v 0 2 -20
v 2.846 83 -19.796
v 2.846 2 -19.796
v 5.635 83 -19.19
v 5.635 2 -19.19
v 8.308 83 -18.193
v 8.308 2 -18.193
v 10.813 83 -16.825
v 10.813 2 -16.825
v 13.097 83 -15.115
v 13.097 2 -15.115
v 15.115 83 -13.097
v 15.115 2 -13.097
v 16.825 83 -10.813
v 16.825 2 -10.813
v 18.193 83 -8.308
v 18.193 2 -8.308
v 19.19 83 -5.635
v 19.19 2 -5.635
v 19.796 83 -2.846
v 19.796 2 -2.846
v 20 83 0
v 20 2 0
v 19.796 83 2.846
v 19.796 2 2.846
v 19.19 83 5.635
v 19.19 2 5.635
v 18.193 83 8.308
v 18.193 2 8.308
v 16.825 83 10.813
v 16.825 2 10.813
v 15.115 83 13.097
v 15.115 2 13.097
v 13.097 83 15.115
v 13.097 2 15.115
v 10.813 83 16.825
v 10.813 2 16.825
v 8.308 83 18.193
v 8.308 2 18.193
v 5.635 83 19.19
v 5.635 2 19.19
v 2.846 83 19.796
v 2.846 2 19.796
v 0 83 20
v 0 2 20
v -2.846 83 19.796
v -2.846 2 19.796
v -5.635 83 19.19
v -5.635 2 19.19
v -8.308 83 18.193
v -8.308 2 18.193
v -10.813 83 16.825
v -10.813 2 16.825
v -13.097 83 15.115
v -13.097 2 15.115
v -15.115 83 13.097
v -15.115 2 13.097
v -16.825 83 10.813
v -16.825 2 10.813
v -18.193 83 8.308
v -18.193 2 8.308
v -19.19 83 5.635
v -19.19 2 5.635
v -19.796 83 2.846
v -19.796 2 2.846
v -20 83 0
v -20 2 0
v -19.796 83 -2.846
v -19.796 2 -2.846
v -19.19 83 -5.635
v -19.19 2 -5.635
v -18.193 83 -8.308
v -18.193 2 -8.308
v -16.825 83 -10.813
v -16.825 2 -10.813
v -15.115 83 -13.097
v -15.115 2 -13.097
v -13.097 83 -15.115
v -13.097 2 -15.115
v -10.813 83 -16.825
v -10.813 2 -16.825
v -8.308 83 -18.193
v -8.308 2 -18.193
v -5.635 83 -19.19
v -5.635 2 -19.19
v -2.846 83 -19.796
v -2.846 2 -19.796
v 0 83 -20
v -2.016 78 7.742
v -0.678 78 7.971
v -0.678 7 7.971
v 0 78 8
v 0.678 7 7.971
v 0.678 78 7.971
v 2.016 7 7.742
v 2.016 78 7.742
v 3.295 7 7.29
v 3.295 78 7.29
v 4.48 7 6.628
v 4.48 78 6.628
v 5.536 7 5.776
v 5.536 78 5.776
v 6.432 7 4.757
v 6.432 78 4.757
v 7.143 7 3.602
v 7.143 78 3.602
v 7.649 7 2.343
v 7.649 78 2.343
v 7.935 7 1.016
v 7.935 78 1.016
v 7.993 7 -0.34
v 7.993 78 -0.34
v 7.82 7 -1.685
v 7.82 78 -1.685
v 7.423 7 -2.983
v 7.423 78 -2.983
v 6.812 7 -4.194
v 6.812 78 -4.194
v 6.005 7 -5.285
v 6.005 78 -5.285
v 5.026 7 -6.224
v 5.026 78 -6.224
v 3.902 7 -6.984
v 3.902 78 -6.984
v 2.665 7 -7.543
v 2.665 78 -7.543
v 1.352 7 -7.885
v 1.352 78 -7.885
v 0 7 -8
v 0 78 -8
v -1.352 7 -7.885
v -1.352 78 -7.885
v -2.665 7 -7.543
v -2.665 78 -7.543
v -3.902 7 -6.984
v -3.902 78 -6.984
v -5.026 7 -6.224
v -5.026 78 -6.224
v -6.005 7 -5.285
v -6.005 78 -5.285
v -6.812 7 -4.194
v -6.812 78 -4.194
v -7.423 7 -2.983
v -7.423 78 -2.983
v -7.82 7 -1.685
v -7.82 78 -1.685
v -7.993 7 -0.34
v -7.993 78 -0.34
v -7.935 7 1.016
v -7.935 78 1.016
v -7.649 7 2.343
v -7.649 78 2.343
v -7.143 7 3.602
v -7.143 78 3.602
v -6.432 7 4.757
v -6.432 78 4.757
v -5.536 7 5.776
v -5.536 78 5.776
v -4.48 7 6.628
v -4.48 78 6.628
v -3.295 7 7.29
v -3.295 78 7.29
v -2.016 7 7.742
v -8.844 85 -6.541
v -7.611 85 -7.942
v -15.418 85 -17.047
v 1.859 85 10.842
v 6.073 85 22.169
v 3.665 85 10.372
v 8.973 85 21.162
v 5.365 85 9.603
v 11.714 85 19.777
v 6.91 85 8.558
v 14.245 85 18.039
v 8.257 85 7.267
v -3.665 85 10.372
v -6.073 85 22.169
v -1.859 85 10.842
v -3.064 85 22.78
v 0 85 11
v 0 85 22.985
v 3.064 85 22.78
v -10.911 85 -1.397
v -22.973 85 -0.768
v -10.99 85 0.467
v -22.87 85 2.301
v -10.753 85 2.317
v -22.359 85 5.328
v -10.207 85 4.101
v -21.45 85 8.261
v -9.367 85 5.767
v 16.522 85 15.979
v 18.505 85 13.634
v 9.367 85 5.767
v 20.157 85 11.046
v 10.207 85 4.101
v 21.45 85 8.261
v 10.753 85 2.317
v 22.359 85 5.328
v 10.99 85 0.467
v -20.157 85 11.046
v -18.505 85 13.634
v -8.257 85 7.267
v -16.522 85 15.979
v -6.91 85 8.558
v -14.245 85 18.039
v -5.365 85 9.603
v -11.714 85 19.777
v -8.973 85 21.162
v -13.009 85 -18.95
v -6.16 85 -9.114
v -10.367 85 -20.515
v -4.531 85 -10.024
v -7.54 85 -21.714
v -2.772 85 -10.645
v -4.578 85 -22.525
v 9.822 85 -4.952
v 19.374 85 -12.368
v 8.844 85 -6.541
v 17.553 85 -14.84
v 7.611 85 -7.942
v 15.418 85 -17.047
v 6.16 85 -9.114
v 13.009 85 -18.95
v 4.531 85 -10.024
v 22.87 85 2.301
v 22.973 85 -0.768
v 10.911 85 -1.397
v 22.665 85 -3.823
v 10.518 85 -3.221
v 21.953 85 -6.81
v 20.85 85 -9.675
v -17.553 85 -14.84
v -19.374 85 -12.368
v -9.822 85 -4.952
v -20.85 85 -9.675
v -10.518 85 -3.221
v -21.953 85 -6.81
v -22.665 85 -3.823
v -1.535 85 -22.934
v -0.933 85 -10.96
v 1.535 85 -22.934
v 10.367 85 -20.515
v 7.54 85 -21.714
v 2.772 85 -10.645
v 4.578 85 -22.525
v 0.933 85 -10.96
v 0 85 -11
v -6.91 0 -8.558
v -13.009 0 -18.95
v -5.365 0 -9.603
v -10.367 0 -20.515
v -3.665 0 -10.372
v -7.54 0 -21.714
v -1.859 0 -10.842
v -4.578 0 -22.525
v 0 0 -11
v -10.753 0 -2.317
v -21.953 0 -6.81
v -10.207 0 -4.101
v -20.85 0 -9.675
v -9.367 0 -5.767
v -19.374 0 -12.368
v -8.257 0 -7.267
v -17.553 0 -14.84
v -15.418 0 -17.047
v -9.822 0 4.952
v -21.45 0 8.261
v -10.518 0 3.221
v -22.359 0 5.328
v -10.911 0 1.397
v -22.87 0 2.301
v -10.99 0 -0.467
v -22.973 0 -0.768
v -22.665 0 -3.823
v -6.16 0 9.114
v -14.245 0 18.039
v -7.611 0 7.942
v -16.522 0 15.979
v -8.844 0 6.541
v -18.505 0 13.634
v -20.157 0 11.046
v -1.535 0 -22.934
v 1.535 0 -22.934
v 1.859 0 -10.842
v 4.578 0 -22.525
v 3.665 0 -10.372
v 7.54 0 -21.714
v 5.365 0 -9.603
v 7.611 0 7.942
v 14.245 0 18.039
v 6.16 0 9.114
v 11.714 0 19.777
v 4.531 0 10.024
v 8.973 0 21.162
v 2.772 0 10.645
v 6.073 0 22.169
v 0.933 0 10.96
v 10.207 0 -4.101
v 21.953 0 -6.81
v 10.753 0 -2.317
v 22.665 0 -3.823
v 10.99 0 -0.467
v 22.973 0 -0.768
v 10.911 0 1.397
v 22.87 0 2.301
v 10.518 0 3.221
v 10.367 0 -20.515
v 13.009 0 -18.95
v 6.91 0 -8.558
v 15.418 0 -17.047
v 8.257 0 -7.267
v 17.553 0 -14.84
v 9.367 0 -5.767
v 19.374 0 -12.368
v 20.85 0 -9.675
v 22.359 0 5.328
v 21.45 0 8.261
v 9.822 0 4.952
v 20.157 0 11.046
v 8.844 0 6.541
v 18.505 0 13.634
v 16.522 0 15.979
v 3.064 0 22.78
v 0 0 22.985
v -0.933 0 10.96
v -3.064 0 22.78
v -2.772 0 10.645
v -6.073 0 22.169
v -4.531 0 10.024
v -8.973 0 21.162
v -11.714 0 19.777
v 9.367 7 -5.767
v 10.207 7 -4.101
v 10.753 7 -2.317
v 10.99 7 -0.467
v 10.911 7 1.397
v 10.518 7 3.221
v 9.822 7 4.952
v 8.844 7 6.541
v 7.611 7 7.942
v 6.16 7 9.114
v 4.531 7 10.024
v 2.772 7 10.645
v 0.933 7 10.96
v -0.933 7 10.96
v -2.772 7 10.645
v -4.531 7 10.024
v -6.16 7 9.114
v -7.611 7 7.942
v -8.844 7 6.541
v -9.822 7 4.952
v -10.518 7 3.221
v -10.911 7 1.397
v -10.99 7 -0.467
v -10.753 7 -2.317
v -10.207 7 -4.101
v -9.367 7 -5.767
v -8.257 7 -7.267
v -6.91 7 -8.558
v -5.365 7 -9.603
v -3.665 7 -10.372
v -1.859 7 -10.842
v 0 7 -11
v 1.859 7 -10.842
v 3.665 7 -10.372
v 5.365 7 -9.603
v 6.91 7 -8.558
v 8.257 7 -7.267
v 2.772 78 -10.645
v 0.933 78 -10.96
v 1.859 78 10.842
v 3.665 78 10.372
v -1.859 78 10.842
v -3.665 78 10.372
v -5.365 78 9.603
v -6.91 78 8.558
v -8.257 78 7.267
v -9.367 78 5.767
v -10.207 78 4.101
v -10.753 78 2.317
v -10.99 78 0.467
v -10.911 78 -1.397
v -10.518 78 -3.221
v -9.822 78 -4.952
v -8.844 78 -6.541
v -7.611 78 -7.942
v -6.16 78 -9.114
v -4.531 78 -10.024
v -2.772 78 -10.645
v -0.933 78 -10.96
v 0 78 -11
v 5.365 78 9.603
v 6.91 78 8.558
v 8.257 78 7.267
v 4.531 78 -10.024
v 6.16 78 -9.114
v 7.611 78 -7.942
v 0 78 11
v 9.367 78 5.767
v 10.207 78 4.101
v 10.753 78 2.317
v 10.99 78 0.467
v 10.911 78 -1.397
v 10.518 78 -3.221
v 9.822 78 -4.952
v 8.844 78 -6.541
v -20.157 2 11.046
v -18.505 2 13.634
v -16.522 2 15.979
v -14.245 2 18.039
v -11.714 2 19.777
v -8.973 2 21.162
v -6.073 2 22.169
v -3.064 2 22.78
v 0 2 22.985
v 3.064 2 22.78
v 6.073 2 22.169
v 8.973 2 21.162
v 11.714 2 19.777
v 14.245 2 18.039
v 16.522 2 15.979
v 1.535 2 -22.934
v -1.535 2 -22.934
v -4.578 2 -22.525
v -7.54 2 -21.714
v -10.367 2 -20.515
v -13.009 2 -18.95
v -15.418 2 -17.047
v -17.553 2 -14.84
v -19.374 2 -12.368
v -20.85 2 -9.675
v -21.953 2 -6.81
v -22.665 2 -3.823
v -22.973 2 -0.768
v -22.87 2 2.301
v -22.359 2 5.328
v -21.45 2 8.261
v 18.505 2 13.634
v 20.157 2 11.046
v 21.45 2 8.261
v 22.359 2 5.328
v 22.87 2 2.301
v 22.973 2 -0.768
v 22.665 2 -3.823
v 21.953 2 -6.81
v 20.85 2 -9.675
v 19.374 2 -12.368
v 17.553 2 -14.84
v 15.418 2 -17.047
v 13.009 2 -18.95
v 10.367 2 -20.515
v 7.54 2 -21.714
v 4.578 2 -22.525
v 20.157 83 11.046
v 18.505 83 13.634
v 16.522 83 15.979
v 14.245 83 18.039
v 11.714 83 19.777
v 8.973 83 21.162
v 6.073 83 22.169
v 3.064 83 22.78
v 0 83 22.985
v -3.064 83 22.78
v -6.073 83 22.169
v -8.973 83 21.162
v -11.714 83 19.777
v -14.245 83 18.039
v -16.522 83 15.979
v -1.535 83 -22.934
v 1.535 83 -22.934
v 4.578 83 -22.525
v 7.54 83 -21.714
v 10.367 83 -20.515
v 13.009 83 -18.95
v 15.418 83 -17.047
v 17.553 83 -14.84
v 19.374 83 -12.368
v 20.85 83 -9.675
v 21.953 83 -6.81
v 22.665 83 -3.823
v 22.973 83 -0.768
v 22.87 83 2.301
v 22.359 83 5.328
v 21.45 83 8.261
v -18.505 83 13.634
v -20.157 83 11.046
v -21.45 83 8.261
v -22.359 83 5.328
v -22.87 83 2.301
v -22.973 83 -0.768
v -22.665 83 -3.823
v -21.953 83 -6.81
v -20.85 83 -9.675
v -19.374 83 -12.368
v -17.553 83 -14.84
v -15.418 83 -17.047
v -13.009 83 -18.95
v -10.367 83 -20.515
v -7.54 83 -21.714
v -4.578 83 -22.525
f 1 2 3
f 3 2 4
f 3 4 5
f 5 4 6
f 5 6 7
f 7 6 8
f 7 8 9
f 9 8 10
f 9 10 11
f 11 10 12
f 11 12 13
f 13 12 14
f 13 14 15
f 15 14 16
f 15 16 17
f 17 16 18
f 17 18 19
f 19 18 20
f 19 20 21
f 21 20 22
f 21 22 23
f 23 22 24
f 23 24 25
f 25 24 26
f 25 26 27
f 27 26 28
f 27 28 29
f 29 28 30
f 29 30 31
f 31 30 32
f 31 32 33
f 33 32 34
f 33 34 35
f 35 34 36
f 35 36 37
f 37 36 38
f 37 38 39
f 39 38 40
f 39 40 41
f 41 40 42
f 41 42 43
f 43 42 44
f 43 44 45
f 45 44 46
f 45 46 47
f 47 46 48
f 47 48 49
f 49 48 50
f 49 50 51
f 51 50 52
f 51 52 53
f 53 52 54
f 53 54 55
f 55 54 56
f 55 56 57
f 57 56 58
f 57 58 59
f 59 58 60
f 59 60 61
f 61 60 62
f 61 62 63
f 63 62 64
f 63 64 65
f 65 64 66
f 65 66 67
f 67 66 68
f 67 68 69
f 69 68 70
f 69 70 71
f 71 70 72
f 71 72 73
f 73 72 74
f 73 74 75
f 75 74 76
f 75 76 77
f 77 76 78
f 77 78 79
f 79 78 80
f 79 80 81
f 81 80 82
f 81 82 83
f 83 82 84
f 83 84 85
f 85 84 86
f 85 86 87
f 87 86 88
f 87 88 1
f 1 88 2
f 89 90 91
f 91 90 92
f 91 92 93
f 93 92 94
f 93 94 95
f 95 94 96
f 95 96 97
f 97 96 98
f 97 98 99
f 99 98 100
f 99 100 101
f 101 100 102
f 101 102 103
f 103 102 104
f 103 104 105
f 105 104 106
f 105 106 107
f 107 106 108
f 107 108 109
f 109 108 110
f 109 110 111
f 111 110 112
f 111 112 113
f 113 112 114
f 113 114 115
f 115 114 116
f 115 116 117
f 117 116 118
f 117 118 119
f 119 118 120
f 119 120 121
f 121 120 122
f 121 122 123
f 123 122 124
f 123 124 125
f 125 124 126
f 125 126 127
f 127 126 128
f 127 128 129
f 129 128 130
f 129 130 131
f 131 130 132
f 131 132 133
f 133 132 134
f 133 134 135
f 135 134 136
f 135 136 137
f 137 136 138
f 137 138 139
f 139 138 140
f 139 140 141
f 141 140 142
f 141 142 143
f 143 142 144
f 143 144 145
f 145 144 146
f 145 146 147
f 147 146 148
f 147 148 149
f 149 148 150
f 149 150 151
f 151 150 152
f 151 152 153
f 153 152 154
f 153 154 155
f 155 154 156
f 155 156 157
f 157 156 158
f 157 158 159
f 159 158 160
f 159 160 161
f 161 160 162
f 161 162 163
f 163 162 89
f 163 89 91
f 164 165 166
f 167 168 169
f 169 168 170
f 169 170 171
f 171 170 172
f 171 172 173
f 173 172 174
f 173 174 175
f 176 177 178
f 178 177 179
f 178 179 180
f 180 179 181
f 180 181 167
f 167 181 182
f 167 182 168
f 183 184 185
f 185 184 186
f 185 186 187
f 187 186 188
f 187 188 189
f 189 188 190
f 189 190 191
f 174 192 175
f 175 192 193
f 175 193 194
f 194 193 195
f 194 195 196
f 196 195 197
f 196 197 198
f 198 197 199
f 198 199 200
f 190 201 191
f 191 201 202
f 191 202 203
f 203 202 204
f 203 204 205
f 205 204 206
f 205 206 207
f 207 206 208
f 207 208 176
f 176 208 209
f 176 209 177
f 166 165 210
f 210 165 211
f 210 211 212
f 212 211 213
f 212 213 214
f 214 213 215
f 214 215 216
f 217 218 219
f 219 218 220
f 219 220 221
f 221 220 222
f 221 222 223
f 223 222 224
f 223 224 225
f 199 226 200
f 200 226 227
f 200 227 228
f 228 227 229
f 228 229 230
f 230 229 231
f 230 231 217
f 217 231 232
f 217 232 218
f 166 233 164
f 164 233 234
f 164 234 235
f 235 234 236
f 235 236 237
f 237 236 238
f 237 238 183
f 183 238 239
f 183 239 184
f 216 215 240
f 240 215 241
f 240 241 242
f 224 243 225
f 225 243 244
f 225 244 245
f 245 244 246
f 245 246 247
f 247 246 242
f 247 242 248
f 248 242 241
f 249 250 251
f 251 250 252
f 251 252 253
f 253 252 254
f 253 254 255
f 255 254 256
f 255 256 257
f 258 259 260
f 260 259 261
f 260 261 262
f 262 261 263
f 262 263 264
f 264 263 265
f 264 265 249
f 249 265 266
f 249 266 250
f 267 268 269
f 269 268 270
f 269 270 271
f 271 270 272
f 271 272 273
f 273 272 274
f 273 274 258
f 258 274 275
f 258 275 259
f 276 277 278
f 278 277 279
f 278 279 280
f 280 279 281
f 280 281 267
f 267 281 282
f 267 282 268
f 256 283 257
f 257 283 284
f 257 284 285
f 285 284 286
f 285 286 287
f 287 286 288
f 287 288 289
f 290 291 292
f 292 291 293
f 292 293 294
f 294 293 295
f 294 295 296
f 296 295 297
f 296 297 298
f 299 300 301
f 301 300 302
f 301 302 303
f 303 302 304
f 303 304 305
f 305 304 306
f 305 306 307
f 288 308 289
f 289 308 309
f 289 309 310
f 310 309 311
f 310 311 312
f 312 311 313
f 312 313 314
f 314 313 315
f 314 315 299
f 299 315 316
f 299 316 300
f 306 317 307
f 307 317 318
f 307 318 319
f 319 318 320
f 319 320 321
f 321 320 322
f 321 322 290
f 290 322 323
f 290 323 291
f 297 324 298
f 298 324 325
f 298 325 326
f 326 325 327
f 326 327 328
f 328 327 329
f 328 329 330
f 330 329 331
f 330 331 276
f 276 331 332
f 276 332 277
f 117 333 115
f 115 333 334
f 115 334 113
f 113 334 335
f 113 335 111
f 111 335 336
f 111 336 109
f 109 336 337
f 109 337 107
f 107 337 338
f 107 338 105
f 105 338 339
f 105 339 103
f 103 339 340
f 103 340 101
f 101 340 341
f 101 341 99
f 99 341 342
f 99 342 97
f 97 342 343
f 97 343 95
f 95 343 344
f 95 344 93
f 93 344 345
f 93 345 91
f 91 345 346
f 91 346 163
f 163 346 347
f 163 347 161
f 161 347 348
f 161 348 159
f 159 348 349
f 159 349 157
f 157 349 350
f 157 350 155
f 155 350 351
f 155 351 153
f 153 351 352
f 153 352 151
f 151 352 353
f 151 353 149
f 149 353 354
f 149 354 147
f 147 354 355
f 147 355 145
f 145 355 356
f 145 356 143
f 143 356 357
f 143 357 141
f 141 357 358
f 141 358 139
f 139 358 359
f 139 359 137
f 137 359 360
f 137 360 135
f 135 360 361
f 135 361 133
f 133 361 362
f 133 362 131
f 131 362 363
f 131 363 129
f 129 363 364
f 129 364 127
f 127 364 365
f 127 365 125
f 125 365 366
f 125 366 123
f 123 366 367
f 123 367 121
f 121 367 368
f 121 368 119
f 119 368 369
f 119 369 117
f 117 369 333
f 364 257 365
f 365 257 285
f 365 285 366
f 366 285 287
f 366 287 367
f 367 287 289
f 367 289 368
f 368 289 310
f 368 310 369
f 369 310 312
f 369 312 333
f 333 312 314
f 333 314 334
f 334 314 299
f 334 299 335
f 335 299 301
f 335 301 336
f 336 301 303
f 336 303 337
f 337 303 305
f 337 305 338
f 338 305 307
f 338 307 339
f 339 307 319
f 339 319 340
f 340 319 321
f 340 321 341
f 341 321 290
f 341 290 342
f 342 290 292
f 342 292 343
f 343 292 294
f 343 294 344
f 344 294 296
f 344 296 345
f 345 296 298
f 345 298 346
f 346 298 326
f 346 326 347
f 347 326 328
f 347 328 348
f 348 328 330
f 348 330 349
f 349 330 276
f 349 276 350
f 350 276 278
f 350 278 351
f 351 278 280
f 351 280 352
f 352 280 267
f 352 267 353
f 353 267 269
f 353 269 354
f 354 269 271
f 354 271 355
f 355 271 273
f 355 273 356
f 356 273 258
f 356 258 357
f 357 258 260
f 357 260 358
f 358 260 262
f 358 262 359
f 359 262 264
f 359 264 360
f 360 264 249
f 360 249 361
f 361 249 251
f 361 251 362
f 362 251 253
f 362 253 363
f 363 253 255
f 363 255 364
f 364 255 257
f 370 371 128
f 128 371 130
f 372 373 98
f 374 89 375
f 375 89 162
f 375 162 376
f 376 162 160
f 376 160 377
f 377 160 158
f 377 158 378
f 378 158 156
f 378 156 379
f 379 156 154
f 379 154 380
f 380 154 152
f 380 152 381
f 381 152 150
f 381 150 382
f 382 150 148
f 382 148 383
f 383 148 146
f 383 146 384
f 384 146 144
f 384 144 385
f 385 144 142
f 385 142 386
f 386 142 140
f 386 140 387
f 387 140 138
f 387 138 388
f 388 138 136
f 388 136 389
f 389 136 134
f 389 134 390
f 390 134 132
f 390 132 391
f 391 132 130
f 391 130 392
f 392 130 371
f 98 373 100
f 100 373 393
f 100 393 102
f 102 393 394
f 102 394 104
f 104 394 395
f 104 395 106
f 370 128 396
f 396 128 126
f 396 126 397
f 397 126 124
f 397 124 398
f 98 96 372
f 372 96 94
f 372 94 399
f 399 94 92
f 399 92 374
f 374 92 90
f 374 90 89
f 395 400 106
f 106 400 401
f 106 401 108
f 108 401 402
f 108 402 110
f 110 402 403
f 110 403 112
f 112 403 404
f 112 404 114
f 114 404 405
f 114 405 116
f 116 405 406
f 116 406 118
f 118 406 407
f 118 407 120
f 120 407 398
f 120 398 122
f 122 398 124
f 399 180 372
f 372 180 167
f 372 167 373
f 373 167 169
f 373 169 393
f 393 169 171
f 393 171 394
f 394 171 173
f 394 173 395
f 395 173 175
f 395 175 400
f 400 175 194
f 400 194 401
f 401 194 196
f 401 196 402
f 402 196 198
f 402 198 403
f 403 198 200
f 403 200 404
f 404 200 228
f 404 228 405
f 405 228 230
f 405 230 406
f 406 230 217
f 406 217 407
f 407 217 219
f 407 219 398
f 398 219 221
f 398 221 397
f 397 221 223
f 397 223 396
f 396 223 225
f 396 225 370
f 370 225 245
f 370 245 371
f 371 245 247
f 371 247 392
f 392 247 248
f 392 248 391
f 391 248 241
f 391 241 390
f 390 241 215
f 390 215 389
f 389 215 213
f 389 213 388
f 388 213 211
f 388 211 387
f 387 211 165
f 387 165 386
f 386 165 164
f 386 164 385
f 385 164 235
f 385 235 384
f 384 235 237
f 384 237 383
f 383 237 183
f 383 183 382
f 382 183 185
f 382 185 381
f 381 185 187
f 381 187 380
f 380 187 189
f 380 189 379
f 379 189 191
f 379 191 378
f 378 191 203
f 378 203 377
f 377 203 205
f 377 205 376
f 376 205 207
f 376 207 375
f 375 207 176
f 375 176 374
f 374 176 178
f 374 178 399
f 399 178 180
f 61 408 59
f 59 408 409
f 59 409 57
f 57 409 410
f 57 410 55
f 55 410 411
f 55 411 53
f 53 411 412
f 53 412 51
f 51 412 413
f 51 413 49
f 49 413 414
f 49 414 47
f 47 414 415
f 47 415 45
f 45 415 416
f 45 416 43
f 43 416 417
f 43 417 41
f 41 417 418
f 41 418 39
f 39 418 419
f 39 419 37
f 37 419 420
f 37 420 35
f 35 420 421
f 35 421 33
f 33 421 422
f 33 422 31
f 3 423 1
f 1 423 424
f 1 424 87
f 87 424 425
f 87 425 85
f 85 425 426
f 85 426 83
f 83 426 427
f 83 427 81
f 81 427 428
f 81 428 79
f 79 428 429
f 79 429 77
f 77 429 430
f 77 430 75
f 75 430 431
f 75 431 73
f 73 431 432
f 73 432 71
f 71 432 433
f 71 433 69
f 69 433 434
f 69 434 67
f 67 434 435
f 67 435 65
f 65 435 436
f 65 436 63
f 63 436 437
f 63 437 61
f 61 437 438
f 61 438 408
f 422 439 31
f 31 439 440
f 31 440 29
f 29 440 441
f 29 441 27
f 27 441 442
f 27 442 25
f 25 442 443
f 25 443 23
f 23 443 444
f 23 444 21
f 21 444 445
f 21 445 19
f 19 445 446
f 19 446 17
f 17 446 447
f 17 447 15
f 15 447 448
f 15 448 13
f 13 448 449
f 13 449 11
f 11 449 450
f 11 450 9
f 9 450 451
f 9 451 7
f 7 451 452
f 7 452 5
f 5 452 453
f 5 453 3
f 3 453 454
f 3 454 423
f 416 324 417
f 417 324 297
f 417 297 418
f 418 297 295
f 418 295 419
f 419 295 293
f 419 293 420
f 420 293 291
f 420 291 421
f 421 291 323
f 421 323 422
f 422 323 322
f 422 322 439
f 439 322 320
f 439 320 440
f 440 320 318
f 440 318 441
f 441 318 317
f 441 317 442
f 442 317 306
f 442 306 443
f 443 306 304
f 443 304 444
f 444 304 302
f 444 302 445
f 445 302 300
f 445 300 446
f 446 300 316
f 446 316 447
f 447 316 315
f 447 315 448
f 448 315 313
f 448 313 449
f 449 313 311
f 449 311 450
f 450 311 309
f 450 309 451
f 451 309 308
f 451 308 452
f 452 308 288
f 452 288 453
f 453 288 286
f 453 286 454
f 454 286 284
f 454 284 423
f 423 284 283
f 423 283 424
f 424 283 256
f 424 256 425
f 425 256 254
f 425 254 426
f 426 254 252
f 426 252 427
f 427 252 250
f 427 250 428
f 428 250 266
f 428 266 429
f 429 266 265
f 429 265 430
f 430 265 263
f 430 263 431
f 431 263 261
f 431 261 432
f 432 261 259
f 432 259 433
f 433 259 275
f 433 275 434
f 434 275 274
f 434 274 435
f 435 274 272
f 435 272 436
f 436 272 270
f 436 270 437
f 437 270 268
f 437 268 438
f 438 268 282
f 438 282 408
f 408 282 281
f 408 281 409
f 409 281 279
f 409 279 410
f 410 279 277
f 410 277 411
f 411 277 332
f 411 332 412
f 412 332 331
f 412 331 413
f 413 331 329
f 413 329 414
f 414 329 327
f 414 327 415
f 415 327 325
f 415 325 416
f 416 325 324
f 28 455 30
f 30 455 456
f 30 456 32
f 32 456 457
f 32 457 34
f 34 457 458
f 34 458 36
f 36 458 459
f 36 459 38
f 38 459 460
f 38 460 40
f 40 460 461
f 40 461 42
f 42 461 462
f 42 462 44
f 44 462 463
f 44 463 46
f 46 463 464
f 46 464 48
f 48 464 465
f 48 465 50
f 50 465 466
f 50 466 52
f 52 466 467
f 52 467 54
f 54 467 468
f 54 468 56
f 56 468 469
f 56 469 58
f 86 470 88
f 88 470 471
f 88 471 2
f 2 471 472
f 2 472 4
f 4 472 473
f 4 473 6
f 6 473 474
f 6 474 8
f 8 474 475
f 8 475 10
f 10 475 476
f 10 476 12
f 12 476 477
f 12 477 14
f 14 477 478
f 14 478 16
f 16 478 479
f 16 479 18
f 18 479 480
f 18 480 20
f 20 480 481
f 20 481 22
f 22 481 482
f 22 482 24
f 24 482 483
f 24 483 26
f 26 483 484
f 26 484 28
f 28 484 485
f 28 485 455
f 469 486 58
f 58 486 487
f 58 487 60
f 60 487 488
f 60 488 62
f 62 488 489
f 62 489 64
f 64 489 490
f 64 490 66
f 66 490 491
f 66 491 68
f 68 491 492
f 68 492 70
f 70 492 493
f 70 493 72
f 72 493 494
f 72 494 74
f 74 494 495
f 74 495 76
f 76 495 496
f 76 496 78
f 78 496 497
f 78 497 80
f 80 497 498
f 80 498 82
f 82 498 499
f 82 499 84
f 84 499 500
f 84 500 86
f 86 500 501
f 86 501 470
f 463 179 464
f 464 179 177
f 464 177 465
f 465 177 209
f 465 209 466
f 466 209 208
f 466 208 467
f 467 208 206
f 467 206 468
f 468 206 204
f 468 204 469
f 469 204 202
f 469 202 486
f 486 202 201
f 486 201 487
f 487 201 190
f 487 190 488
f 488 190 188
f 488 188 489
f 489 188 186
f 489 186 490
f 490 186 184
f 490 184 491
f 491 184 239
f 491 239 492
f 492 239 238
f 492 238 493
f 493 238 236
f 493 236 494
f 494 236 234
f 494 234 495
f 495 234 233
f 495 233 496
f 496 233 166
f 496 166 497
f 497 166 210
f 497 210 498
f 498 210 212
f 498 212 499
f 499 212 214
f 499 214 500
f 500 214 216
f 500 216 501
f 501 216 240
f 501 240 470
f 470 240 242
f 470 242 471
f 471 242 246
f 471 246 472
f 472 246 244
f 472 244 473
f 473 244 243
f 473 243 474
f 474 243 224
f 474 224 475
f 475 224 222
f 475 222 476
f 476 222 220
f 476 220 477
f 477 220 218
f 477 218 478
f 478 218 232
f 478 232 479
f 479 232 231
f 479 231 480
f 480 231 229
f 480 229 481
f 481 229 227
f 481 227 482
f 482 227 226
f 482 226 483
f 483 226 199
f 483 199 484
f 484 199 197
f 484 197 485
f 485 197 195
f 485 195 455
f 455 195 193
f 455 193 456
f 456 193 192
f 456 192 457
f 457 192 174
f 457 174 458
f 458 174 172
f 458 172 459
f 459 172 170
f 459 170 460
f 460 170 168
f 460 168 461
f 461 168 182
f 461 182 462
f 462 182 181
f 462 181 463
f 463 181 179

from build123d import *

# Parameters (mm, degrees)
ESQUISSE1_R             = 20
BOSS_EXTRU_1_DEPTH      = 85
ESQUISSE6_R             = 8
ENL_V_MAT_EXTRU_1_DEPTH = 85
ESQUISSE7_R             = 11
ENL_V_MAT_EXTRU_2_DEPTH = 7
ESQUISSE11_W            = 3
ESQUISSE11_H            = 2


with BuildPart() as part:
    # Esquisse1 → Boss.-Extru.1 (new body)
    with BuildSketch(Plane(origin=(0, 0, 0), x_dir=(1, 0, 0), z_dir=(0, 1, 0))):
        with Locations(Location((0, 0, 0), (0, 0, 270))):
            Circle(ESQUISSE1_R)
    extrude(amount=BOSS_EXTRU_1_DEPTH)

    # Esquisse6 → Enlèv. mat.-Extru.1 (cut)
    with BuildSketch(Plane.XZ):
        with Locations(Location((0, 0, 0), (0, 0, 270))):
            Circle(ESQUISSE6_R)
    extrude(amount=-ENL_V_MAT_EXTRU_1_DEPTH, mode=Mode.SUBTRACT)

    # Esquisse7 → Enlèv. mat.-Extru.2 (cut)
    with BuildSketch(Plane.XZ):
        with Locations(Location((0, 0, 0), (0, 0, 270))):
            Circle(ESQUISSE7_R)
    enl_v_mat_extru_2 = extrude(amount=-ENL_V_MAT_EXTRU_2_DEPTH, mode=Mode.SUBTRACT)

    # Symétrie1: Enlèv. mat.-Extru.2 across plane
    add(enl_v_mat_extru_2.mirror(Plane.ZX.offset(42.5)), mode=Mode.SUBTRACT)

    # Esquisse11 → Révolution1 (revolve)
    with BuildSketch(Plane(origin=(0, 0, 0), x_dir=(0, 0, -1), z_dir=(1, 0, 0))):
        with Locations((21.485433731, 1)):
            Rectangle(ESQUISSE11_W, ESQUISSE11_H)
    r_volution1 = revolve(axis=Axis((0, 85, 0), (0, -1, 0)))

    # Symétrie2: Révolution1 across plane
    add(r_volution1.mirror(Plane.ZX.offset(42.5)))


solid = part.part
